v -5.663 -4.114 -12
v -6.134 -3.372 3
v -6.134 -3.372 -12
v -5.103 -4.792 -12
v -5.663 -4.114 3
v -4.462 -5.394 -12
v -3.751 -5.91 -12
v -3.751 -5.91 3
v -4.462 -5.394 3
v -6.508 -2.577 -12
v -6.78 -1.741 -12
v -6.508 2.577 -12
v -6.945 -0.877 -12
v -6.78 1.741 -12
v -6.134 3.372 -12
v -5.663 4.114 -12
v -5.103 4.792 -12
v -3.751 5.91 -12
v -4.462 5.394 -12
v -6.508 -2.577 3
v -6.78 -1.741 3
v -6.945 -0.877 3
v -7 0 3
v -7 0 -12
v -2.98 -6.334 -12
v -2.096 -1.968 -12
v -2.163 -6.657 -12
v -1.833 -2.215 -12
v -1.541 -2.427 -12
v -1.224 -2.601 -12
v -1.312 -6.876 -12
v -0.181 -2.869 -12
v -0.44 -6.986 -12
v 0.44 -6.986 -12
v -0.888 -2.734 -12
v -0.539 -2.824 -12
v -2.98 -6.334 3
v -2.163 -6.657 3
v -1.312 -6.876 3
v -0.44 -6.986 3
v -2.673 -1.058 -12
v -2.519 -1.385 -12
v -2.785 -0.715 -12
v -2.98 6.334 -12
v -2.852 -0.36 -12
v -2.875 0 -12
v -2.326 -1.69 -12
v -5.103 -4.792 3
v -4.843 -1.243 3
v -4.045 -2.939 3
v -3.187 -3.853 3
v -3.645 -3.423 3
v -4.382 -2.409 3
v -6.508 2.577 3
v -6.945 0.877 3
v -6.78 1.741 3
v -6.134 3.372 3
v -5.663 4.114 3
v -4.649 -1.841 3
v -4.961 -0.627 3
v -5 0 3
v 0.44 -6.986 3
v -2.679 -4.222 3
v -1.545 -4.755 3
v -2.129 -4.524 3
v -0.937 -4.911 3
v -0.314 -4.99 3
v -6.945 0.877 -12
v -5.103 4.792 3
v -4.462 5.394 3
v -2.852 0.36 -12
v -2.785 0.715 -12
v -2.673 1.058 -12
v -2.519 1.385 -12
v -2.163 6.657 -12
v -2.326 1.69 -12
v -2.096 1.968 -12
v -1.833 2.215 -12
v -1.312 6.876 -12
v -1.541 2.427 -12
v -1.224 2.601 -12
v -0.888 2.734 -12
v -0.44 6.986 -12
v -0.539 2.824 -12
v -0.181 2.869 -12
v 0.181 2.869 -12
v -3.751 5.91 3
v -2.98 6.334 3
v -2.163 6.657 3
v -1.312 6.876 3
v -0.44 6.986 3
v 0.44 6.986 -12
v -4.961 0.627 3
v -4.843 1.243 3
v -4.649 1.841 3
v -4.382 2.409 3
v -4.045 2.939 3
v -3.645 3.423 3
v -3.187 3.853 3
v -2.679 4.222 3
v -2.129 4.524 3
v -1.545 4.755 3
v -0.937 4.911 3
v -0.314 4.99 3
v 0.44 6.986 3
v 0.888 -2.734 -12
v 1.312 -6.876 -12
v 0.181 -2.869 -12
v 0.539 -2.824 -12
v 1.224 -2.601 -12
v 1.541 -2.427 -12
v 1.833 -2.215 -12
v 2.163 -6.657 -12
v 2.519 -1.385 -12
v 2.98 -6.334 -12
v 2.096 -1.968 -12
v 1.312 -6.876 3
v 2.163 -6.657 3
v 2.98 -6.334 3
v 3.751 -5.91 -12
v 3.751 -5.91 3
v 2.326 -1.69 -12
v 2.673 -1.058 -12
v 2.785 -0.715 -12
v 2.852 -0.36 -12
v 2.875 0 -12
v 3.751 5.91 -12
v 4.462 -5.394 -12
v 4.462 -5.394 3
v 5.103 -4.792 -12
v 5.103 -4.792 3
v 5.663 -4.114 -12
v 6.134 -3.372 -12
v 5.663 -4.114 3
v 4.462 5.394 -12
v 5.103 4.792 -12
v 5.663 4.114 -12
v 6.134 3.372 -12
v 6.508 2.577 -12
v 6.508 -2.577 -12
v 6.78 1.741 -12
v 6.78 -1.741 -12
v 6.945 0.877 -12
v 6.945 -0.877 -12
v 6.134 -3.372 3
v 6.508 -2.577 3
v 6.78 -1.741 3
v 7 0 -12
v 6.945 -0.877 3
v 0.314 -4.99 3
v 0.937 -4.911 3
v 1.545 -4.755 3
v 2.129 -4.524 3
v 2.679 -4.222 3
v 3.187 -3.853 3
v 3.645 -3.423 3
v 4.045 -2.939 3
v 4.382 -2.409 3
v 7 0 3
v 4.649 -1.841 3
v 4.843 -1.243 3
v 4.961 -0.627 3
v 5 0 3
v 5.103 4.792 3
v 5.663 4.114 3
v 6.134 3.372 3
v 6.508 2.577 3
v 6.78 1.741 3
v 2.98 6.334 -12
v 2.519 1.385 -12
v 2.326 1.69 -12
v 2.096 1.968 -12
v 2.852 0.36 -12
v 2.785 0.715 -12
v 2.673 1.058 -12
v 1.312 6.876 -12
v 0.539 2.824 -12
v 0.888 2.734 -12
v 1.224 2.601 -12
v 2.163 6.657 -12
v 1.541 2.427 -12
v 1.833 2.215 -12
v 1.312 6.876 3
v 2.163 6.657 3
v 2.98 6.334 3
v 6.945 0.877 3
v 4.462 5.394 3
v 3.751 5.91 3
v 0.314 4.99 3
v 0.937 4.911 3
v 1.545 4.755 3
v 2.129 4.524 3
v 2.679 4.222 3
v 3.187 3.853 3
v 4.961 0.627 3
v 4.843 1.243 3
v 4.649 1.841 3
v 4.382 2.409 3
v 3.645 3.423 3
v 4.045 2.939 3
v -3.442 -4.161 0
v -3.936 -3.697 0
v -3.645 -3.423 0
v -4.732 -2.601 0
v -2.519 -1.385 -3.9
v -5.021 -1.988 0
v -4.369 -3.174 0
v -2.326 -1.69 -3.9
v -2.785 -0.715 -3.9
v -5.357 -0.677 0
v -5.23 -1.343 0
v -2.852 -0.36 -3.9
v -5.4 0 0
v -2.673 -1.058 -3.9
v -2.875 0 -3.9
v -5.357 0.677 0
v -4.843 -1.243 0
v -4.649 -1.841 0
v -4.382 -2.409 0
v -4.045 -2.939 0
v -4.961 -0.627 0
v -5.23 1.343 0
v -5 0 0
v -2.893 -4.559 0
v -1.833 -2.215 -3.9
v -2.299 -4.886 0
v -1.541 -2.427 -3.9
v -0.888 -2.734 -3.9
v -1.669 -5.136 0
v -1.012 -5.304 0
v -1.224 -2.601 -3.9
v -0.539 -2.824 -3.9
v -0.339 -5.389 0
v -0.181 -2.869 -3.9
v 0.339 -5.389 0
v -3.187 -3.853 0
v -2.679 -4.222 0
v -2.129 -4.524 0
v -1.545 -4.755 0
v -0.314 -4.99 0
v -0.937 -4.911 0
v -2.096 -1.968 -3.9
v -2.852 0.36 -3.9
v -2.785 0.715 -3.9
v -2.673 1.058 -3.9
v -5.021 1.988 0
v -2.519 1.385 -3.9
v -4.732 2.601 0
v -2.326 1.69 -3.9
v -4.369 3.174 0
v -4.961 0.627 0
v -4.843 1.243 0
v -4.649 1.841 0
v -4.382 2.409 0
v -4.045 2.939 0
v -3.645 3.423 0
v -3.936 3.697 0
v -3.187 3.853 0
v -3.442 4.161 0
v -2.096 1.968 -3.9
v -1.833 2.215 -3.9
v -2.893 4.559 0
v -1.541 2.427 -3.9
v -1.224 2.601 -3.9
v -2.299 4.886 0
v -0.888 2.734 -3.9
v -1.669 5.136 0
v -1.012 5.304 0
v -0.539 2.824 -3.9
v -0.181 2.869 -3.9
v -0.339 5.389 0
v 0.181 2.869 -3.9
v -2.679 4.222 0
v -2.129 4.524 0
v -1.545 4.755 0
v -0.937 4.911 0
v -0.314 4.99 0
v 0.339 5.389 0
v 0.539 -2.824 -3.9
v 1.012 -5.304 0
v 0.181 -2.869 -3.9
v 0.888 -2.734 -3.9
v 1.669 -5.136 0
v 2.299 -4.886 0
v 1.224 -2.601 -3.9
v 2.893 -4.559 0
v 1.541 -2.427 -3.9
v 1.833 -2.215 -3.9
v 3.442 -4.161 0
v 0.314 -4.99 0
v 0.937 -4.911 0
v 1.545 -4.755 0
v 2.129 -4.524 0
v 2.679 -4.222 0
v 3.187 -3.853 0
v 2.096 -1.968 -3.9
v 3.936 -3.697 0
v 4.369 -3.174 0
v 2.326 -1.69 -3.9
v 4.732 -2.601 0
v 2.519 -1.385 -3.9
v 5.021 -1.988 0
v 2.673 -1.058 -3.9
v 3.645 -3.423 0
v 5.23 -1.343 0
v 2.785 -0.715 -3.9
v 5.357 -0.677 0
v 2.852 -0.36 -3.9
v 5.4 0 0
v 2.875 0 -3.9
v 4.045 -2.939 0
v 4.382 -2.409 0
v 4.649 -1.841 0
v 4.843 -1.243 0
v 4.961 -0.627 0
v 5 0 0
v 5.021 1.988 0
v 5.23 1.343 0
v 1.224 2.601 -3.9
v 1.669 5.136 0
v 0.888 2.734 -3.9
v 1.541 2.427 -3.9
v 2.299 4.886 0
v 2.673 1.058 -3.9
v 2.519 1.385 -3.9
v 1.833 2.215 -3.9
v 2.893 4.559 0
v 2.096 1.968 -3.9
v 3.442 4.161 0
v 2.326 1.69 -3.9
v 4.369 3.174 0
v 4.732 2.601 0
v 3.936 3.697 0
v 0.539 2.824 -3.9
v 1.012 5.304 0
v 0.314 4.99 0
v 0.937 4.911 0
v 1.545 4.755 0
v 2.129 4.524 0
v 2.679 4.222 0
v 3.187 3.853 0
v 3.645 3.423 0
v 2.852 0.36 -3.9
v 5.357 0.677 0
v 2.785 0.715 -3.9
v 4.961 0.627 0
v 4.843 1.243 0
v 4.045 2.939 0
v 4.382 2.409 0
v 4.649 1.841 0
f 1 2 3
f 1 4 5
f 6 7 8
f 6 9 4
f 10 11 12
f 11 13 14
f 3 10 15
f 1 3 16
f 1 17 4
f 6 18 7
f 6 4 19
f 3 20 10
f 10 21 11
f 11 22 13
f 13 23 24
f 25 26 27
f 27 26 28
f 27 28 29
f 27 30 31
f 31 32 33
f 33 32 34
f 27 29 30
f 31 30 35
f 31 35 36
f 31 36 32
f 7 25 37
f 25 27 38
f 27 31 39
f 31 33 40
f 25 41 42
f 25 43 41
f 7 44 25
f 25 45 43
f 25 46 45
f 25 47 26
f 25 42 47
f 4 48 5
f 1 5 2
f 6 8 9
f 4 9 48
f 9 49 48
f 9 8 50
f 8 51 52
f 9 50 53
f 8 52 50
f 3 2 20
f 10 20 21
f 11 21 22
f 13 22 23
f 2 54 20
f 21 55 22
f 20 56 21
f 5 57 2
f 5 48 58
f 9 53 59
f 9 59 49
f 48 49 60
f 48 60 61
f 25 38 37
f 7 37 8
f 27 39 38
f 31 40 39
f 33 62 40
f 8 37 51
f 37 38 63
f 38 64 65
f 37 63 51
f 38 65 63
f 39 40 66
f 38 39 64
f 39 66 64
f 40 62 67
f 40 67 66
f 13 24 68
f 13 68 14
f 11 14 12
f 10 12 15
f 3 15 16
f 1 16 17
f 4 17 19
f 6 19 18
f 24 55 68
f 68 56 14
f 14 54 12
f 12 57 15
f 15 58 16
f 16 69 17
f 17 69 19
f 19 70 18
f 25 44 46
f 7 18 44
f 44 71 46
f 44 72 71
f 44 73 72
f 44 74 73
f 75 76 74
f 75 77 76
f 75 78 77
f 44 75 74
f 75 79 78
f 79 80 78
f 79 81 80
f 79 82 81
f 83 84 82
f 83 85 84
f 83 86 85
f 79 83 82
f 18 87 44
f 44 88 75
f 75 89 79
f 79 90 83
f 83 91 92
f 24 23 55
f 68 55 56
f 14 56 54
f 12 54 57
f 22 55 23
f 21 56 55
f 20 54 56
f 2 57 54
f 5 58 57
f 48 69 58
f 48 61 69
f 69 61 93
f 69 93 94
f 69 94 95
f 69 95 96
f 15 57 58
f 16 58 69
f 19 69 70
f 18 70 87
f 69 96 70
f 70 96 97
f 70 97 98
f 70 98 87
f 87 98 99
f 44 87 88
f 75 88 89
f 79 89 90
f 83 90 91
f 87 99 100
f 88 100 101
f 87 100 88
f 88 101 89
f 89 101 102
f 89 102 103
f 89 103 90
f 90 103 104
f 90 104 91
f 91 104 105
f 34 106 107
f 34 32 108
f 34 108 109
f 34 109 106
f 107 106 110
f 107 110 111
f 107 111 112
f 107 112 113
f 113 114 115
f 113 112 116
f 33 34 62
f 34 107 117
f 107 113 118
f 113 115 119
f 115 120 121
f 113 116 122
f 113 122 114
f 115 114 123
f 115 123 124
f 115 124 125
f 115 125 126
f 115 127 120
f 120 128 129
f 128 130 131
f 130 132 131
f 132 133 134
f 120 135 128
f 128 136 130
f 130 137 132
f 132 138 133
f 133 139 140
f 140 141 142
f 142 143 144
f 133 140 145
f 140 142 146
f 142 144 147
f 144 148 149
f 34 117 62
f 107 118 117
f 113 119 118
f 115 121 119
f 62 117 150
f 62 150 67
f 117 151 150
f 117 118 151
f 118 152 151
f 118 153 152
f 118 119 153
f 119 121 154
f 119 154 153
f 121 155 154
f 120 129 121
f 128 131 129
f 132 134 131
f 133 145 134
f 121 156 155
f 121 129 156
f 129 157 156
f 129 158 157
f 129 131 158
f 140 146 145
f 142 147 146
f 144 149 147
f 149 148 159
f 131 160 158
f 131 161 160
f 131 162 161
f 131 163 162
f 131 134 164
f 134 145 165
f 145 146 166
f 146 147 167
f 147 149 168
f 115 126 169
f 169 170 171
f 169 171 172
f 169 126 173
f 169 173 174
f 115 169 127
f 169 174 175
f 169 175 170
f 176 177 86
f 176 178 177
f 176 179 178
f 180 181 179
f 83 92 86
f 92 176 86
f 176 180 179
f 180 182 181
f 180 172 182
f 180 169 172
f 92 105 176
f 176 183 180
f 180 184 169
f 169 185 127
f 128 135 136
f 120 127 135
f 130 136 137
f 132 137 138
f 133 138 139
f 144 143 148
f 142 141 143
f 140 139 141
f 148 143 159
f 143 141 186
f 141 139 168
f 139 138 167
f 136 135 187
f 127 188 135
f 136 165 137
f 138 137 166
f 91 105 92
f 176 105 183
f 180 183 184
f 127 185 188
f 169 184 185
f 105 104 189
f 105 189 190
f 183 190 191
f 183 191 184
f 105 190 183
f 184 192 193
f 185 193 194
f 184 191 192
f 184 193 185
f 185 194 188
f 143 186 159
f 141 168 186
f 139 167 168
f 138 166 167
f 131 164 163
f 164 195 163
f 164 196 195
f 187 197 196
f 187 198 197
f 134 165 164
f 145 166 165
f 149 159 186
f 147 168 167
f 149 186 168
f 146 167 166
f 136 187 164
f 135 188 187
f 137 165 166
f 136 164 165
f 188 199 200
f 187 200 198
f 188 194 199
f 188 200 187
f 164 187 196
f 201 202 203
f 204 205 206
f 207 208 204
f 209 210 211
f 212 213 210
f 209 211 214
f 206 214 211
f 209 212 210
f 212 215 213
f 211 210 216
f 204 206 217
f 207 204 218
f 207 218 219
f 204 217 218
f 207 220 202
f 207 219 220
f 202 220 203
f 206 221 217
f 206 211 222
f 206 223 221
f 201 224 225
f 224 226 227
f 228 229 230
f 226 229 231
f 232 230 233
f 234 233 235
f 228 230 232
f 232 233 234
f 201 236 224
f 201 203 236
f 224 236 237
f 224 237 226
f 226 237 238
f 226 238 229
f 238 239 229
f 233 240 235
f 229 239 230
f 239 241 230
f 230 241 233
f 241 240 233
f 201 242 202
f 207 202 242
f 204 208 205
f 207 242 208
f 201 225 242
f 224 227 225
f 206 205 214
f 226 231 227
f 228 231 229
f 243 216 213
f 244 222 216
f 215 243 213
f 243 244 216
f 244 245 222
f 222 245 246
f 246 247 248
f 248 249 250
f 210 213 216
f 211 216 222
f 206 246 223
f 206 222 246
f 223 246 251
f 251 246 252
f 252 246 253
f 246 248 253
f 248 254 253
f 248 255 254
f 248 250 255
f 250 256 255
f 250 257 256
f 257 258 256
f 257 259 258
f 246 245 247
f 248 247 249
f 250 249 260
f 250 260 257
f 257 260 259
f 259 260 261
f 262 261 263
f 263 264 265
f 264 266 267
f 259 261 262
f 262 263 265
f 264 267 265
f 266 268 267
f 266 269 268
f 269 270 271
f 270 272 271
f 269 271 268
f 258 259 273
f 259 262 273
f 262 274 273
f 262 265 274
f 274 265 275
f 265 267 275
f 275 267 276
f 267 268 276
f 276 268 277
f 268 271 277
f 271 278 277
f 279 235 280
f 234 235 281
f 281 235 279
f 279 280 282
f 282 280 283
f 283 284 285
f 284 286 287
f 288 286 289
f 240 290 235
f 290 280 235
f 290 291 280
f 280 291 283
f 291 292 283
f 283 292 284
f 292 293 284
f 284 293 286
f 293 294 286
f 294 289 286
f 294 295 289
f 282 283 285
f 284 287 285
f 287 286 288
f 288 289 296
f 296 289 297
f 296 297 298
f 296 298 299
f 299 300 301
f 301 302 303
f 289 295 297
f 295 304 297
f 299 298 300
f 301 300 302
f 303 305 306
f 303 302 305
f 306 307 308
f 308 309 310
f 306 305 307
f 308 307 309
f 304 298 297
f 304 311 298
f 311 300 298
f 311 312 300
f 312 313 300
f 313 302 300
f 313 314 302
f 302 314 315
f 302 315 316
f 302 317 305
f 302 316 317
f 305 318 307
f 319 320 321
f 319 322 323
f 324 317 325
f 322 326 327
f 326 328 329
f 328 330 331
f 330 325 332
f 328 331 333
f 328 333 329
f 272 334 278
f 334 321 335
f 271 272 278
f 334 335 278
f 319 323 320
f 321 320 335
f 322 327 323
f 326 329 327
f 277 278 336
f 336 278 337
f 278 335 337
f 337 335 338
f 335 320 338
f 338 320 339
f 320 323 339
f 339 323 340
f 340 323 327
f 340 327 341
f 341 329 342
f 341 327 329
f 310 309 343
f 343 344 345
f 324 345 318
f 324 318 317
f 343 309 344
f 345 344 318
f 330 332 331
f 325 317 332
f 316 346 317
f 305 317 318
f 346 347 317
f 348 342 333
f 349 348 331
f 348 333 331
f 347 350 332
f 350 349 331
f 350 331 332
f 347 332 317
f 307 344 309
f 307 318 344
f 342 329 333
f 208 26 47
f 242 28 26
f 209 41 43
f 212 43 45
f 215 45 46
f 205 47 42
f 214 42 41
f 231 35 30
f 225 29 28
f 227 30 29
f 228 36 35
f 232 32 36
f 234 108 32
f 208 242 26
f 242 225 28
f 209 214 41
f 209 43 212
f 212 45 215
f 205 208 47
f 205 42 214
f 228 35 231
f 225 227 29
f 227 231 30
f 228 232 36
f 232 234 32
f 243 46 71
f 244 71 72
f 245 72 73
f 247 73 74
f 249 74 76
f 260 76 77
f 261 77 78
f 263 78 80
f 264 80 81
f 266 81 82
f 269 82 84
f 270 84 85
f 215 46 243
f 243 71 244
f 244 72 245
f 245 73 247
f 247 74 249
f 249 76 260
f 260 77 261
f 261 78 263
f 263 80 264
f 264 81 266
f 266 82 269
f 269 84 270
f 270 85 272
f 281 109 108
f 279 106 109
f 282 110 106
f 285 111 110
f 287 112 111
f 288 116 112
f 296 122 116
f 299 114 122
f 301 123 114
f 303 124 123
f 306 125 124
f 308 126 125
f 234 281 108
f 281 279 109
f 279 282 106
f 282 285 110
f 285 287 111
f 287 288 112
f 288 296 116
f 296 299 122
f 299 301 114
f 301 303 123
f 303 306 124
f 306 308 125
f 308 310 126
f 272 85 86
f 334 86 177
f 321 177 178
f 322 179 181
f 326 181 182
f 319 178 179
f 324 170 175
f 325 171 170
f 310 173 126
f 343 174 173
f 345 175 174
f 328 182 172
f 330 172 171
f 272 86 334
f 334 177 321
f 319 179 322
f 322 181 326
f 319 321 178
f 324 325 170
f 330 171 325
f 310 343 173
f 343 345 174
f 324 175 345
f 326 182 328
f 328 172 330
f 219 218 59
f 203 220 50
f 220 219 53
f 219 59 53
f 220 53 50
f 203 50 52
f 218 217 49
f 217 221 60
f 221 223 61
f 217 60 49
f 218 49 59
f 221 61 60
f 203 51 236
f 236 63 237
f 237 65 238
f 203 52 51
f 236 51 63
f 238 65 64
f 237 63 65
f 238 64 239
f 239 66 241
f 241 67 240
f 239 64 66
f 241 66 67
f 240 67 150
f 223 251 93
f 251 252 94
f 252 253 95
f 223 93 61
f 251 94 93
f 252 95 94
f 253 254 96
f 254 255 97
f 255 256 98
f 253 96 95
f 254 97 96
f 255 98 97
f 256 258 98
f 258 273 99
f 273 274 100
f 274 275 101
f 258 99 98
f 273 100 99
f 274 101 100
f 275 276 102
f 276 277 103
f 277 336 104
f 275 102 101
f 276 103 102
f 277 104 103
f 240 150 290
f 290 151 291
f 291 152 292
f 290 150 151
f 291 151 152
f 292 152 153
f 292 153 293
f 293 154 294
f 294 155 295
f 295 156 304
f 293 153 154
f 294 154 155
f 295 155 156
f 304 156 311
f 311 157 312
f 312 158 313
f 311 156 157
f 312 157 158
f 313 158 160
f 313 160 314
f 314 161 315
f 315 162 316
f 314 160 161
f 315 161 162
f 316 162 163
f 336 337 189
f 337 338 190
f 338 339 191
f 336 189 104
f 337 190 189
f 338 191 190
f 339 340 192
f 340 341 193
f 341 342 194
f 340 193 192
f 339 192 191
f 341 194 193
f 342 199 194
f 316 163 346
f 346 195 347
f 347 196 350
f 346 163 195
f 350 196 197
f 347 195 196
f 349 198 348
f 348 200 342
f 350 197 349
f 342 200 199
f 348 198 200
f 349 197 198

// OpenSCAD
$fn = 50;

difference() {
	union() {
		translate(v = [0, 0, -12.0]) {
			cylinder(h = 15, r = 7.0);
		}
		#translate(v = [0, 0, -15.0]) {
			cylinder(h = 15, r = 2.875);
		}
	}
	union() {
		translate(v = [0, 0, 0]) {
			rotate(a = [0, 0, 0]) {
				difference() {
					union() {
						translate(v = [0, 0, -15.0]) {
							cylinder(h = 15, r = 2.6);
						}
						translate(v = [0, 0, -3.9]) {
							cylinder(h = 3.9, r1 = 2.875, r2 = 5.4);
						}
						translate(v = [0, 0, -15.0]) {
							cylinder(h = 15, r = 2.875);
						}
						translate(v = [0, 0, -15.0]) {
							cylinder(h = 15, r = 2.6);
						}
					}
					union();
				}
			}
		}
		#cylinder(h = 3, r = 5.0);
	}
}
